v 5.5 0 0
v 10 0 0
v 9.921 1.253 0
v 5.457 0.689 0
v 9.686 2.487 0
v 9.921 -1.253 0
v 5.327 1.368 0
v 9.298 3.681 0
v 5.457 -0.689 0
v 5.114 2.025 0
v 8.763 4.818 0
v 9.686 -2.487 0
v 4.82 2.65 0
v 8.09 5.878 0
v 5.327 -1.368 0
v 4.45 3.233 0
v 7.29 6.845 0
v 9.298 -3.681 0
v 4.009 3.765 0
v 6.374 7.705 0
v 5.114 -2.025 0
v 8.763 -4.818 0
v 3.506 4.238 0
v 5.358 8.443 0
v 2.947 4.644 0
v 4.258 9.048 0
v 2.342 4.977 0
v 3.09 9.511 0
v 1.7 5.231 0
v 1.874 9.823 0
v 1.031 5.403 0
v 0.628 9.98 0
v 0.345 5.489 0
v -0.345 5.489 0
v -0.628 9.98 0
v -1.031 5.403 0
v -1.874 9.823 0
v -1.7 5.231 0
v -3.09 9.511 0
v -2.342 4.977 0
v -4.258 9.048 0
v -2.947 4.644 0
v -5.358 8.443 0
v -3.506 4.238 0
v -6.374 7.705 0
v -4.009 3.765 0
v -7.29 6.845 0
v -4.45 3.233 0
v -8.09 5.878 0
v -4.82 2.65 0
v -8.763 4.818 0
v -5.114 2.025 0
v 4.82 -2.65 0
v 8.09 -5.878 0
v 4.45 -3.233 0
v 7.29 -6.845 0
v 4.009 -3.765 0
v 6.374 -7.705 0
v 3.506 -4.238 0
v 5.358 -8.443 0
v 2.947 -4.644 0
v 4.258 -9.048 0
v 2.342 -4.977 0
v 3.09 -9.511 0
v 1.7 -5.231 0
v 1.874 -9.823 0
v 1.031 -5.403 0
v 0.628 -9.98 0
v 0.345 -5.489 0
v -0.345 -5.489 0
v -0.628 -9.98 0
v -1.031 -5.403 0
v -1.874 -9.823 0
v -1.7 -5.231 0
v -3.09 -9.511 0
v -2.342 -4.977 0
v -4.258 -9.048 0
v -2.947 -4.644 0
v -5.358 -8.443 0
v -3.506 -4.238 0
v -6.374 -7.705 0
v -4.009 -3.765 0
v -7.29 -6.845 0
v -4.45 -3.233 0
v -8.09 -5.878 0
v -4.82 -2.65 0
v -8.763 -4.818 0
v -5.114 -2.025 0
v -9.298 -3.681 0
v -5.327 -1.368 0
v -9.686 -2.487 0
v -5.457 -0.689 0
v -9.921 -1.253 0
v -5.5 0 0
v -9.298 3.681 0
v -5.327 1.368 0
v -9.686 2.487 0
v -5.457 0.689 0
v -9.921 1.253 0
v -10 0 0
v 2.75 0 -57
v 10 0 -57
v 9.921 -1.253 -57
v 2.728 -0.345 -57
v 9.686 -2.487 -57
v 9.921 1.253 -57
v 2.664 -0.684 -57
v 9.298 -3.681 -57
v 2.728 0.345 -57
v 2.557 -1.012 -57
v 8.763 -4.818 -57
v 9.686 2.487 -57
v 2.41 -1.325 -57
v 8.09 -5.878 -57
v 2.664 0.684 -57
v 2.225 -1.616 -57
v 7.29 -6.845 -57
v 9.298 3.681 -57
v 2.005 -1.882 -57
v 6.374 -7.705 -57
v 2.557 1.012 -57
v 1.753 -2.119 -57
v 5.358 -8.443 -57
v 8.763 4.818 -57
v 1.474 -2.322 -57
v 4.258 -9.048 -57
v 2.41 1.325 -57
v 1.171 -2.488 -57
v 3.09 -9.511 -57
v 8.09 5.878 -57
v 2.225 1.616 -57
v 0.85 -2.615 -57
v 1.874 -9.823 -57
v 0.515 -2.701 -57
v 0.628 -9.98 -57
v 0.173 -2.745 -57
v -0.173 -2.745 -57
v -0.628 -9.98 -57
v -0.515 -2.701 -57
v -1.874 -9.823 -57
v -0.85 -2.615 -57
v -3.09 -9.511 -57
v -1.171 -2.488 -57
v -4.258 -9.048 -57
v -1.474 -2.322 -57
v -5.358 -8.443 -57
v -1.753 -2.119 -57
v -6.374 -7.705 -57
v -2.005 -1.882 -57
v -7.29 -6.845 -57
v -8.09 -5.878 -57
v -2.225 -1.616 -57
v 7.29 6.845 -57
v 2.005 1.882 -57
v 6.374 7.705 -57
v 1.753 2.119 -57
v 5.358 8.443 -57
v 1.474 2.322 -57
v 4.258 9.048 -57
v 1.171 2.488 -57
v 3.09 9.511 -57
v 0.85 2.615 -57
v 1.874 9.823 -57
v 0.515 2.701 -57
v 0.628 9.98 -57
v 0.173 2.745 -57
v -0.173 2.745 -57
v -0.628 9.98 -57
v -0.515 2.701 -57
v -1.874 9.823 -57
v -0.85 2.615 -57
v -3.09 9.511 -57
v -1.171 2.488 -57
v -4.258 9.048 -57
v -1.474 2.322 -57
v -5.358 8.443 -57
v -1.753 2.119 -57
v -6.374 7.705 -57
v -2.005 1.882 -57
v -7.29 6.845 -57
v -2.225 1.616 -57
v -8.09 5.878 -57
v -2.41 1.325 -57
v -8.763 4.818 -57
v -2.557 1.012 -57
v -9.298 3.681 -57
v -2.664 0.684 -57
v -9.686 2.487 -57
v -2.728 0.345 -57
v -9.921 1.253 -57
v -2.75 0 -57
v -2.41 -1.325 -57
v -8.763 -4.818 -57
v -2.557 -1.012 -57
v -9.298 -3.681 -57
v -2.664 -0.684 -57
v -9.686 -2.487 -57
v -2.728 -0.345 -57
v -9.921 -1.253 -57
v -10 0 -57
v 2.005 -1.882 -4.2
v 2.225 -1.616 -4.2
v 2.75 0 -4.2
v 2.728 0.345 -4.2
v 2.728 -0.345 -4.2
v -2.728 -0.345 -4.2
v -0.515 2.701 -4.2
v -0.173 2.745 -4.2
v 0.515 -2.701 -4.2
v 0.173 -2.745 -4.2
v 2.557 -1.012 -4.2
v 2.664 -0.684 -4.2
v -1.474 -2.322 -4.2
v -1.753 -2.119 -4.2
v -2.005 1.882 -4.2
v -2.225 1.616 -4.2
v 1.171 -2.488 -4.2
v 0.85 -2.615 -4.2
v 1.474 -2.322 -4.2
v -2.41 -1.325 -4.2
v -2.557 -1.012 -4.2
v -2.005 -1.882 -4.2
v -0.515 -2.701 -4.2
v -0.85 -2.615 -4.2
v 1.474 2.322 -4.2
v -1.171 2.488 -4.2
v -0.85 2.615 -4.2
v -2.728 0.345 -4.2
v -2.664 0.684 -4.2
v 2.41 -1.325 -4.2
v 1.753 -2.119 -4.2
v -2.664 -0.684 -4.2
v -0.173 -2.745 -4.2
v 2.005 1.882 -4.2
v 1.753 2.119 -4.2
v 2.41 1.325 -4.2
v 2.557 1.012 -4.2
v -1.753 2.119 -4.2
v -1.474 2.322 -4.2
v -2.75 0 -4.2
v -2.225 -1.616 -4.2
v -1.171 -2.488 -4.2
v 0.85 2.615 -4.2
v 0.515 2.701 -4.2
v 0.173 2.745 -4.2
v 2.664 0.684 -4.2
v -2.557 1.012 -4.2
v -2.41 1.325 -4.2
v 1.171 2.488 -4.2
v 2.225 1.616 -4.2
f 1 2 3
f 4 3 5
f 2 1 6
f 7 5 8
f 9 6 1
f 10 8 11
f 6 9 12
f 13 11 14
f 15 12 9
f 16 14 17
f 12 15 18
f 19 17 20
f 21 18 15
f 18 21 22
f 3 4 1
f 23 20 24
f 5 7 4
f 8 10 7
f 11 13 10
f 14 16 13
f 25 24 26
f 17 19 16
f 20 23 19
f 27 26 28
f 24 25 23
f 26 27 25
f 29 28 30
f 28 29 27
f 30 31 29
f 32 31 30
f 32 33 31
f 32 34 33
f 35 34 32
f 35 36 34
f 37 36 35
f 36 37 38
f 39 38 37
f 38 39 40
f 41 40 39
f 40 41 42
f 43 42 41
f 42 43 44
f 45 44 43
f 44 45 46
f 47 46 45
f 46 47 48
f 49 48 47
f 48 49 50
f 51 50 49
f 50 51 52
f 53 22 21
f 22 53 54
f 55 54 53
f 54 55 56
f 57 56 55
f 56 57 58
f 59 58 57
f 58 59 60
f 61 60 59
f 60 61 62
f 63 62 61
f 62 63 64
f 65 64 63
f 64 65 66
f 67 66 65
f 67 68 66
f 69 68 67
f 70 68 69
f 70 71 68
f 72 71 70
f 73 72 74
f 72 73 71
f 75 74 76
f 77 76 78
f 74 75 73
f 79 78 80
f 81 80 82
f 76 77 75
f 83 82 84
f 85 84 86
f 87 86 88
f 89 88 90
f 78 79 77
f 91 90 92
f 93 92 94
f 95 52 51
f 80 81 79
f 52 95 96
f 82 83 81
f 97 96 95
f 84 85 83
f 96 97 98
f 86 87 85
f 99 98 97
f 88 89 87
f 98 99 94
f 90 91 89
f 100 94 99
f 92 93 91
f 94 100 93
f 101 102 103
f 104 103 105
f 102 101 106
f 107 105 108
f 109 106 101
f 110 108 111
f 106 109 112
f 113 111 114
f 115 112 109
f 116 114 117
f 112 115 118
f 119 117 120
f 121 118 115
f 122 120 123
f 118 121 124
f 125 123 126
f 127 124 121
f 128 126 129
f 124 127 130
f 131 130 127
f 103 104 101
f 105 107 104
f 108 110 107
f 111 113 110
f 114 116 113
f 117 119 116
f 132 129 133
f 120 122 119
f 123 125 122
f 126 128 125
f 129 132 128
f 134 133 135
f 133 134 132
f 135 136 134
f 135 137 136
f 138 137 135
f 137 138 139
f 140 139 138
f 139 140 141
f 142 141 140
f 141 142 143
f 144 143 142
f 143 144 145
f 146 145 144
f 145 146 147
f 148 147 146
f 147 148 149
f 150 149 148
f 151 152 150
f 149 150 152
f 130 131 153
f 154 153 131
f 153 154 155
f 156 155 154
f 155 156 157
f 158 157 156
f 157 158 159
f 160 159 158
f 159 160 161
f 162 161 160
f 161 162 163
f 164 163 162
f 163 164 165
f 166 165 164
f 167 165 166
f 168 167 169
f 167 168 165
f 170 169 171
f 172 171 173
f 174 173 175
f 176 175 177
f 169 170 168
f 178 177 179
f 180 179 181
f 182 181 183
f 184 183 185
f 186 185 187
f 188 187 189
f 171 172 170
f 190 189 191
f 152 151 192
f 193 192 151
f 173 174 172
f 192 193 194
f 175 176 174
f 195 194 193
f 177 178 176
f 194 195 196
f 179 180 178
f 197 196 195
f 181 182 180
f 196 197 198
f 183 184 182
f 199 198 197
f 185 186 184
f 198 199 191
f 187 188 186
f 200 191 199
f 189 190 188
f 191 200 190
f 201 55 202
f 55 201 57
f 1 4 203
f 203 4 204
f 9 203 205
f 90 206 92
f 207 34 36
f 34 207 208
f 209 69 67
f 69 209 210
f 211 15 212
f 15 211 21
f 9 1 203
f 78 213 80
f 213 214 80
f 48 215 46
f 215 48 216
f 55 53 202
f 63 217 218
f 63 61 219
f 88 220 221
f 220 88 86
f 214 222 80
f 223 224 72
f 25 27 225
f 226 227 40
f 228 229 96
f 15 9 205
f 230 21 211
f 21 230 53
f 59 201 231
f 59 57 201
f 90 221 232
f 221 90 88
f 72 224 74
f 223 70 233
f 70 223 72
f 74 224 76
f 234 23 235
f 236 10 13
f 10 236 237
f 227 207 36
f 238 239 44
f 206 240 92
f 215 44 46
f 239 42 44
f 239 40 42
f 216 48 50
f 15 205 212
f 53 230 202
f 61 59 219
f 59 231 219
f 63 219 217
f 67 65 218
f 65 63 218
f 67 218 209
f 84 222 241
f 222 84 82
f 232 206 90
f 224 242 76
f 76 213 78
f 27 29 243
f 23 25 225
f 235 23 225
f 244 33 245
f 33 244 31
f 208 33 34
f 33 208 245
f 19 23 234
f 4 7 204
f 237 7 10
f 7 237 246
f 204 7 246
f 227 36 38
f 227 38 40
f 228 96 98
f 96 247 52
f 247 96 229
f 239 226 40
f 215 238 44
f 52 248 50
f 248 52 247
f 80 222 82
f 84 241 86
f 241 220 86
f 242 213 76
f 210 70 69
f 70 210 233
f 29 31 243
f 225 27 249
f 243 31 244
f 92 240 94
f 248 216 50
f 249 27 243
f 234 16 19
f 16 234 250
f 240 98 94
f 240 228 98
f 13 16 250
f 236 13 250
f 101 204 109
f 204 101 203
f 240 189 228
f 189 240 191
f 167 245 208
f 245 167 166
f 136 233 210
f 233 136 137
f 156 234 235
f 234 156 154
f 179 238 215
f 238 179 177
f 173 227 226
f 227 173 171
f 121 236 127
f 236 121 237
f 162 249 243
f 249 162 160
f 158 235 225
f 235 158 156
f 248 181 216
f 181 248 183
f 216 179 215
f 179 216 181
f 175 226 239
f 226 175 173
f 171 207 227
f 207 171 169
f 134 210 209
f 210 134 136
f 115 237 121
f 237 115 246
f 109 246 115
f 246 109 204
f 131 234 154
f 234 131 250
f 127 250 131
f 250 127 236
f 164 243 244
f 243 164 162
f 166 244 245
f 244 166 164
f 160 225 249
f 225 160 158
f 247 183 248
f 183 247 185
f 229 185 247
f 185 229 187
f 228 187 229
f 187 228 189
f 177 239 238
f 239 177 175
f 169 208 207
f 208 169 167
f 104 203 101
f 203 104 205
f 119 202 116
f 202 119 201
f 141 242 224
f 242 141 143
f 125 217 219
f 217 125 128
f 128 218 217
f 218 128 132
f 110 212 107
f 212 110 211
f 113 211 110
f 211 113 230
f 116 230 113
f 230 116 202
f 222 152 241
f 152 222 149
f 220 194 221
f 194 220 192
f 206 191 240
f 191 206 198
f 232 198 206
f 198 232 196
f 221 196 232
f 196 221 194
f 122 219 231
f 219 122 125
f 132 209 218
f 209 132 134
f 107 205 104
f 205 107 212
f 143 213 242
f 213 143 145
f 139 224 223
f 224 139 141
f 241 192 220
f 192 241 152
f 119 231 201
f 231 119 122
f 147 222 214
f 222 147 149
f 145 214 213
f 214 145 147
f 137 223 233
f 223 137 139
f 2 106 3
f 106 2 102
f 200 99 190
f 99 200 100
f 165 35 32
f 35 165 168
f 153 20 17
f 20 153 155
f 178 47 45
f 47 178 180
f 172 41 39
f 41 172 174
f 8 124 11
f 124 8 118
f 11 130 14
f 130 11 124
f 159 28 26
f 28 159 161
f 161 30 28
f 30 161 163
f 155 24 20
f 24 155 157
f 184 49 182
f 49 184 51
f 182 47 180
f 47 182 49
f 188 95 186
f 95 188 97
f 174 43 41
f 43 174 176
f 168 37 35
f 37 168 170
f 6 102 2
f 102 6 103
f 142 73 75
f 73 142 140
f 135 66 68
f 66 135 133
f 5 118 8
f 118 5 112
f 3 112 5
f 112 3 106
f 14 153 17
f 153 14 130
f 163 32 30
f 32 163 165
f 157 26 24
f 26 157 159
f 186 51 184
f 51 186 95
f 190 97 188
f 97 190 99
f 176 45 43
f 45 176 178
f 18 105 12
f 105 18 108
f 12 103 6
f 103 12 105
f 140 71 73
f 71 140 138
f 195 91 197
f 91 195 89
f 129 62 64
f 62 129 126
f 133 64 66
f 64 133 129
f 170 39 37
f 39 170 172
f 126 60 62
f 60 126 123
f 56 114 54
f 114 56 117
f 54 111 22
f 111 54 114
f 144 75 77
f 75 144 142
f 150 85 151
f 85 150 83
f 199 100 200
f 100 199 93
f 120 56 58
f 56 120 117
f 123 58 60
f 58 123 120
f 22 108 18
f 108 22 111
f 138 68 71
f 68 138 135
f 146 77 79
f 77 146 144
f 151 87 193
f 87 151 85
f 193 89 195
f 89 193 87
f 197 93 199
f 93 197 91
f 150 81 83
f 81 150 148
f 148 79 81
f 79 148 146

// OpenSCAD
$fn = 50;


difference() {
	union() {
		translate(v = [0, 0, -57.0000000000]) {
			cylinder(h = 57, r = 10.0000000000);
		}
	}
	union() {
		translate(v = [0, 0, 0]) {
			rotate(a = [0, 0, 0]) {
				difference() {
					union() {
						#translate(v = [0, 0, -57.0000000000]) {
							cylinder(h = 57, r = 2.2500000000);
						}
						#translate(v = [0, 0, -4.2000000000]) {
							cylinder(h = 4.2000000000, r = 10.0000000000, r1 = 2.7500000000, r2 = 5.5000000000);
						}
						#translate(v = [0, 0, -57.0000000000]) {
							cylinder(h = 57, r = 2.7500000000);
						}
						#translate(v = [0, 0, -57.0000000000]) {
							cylinder(h = 57, r = 2.2500000000);
						}
					}
					union();
				}
			}
		}
	}
}
